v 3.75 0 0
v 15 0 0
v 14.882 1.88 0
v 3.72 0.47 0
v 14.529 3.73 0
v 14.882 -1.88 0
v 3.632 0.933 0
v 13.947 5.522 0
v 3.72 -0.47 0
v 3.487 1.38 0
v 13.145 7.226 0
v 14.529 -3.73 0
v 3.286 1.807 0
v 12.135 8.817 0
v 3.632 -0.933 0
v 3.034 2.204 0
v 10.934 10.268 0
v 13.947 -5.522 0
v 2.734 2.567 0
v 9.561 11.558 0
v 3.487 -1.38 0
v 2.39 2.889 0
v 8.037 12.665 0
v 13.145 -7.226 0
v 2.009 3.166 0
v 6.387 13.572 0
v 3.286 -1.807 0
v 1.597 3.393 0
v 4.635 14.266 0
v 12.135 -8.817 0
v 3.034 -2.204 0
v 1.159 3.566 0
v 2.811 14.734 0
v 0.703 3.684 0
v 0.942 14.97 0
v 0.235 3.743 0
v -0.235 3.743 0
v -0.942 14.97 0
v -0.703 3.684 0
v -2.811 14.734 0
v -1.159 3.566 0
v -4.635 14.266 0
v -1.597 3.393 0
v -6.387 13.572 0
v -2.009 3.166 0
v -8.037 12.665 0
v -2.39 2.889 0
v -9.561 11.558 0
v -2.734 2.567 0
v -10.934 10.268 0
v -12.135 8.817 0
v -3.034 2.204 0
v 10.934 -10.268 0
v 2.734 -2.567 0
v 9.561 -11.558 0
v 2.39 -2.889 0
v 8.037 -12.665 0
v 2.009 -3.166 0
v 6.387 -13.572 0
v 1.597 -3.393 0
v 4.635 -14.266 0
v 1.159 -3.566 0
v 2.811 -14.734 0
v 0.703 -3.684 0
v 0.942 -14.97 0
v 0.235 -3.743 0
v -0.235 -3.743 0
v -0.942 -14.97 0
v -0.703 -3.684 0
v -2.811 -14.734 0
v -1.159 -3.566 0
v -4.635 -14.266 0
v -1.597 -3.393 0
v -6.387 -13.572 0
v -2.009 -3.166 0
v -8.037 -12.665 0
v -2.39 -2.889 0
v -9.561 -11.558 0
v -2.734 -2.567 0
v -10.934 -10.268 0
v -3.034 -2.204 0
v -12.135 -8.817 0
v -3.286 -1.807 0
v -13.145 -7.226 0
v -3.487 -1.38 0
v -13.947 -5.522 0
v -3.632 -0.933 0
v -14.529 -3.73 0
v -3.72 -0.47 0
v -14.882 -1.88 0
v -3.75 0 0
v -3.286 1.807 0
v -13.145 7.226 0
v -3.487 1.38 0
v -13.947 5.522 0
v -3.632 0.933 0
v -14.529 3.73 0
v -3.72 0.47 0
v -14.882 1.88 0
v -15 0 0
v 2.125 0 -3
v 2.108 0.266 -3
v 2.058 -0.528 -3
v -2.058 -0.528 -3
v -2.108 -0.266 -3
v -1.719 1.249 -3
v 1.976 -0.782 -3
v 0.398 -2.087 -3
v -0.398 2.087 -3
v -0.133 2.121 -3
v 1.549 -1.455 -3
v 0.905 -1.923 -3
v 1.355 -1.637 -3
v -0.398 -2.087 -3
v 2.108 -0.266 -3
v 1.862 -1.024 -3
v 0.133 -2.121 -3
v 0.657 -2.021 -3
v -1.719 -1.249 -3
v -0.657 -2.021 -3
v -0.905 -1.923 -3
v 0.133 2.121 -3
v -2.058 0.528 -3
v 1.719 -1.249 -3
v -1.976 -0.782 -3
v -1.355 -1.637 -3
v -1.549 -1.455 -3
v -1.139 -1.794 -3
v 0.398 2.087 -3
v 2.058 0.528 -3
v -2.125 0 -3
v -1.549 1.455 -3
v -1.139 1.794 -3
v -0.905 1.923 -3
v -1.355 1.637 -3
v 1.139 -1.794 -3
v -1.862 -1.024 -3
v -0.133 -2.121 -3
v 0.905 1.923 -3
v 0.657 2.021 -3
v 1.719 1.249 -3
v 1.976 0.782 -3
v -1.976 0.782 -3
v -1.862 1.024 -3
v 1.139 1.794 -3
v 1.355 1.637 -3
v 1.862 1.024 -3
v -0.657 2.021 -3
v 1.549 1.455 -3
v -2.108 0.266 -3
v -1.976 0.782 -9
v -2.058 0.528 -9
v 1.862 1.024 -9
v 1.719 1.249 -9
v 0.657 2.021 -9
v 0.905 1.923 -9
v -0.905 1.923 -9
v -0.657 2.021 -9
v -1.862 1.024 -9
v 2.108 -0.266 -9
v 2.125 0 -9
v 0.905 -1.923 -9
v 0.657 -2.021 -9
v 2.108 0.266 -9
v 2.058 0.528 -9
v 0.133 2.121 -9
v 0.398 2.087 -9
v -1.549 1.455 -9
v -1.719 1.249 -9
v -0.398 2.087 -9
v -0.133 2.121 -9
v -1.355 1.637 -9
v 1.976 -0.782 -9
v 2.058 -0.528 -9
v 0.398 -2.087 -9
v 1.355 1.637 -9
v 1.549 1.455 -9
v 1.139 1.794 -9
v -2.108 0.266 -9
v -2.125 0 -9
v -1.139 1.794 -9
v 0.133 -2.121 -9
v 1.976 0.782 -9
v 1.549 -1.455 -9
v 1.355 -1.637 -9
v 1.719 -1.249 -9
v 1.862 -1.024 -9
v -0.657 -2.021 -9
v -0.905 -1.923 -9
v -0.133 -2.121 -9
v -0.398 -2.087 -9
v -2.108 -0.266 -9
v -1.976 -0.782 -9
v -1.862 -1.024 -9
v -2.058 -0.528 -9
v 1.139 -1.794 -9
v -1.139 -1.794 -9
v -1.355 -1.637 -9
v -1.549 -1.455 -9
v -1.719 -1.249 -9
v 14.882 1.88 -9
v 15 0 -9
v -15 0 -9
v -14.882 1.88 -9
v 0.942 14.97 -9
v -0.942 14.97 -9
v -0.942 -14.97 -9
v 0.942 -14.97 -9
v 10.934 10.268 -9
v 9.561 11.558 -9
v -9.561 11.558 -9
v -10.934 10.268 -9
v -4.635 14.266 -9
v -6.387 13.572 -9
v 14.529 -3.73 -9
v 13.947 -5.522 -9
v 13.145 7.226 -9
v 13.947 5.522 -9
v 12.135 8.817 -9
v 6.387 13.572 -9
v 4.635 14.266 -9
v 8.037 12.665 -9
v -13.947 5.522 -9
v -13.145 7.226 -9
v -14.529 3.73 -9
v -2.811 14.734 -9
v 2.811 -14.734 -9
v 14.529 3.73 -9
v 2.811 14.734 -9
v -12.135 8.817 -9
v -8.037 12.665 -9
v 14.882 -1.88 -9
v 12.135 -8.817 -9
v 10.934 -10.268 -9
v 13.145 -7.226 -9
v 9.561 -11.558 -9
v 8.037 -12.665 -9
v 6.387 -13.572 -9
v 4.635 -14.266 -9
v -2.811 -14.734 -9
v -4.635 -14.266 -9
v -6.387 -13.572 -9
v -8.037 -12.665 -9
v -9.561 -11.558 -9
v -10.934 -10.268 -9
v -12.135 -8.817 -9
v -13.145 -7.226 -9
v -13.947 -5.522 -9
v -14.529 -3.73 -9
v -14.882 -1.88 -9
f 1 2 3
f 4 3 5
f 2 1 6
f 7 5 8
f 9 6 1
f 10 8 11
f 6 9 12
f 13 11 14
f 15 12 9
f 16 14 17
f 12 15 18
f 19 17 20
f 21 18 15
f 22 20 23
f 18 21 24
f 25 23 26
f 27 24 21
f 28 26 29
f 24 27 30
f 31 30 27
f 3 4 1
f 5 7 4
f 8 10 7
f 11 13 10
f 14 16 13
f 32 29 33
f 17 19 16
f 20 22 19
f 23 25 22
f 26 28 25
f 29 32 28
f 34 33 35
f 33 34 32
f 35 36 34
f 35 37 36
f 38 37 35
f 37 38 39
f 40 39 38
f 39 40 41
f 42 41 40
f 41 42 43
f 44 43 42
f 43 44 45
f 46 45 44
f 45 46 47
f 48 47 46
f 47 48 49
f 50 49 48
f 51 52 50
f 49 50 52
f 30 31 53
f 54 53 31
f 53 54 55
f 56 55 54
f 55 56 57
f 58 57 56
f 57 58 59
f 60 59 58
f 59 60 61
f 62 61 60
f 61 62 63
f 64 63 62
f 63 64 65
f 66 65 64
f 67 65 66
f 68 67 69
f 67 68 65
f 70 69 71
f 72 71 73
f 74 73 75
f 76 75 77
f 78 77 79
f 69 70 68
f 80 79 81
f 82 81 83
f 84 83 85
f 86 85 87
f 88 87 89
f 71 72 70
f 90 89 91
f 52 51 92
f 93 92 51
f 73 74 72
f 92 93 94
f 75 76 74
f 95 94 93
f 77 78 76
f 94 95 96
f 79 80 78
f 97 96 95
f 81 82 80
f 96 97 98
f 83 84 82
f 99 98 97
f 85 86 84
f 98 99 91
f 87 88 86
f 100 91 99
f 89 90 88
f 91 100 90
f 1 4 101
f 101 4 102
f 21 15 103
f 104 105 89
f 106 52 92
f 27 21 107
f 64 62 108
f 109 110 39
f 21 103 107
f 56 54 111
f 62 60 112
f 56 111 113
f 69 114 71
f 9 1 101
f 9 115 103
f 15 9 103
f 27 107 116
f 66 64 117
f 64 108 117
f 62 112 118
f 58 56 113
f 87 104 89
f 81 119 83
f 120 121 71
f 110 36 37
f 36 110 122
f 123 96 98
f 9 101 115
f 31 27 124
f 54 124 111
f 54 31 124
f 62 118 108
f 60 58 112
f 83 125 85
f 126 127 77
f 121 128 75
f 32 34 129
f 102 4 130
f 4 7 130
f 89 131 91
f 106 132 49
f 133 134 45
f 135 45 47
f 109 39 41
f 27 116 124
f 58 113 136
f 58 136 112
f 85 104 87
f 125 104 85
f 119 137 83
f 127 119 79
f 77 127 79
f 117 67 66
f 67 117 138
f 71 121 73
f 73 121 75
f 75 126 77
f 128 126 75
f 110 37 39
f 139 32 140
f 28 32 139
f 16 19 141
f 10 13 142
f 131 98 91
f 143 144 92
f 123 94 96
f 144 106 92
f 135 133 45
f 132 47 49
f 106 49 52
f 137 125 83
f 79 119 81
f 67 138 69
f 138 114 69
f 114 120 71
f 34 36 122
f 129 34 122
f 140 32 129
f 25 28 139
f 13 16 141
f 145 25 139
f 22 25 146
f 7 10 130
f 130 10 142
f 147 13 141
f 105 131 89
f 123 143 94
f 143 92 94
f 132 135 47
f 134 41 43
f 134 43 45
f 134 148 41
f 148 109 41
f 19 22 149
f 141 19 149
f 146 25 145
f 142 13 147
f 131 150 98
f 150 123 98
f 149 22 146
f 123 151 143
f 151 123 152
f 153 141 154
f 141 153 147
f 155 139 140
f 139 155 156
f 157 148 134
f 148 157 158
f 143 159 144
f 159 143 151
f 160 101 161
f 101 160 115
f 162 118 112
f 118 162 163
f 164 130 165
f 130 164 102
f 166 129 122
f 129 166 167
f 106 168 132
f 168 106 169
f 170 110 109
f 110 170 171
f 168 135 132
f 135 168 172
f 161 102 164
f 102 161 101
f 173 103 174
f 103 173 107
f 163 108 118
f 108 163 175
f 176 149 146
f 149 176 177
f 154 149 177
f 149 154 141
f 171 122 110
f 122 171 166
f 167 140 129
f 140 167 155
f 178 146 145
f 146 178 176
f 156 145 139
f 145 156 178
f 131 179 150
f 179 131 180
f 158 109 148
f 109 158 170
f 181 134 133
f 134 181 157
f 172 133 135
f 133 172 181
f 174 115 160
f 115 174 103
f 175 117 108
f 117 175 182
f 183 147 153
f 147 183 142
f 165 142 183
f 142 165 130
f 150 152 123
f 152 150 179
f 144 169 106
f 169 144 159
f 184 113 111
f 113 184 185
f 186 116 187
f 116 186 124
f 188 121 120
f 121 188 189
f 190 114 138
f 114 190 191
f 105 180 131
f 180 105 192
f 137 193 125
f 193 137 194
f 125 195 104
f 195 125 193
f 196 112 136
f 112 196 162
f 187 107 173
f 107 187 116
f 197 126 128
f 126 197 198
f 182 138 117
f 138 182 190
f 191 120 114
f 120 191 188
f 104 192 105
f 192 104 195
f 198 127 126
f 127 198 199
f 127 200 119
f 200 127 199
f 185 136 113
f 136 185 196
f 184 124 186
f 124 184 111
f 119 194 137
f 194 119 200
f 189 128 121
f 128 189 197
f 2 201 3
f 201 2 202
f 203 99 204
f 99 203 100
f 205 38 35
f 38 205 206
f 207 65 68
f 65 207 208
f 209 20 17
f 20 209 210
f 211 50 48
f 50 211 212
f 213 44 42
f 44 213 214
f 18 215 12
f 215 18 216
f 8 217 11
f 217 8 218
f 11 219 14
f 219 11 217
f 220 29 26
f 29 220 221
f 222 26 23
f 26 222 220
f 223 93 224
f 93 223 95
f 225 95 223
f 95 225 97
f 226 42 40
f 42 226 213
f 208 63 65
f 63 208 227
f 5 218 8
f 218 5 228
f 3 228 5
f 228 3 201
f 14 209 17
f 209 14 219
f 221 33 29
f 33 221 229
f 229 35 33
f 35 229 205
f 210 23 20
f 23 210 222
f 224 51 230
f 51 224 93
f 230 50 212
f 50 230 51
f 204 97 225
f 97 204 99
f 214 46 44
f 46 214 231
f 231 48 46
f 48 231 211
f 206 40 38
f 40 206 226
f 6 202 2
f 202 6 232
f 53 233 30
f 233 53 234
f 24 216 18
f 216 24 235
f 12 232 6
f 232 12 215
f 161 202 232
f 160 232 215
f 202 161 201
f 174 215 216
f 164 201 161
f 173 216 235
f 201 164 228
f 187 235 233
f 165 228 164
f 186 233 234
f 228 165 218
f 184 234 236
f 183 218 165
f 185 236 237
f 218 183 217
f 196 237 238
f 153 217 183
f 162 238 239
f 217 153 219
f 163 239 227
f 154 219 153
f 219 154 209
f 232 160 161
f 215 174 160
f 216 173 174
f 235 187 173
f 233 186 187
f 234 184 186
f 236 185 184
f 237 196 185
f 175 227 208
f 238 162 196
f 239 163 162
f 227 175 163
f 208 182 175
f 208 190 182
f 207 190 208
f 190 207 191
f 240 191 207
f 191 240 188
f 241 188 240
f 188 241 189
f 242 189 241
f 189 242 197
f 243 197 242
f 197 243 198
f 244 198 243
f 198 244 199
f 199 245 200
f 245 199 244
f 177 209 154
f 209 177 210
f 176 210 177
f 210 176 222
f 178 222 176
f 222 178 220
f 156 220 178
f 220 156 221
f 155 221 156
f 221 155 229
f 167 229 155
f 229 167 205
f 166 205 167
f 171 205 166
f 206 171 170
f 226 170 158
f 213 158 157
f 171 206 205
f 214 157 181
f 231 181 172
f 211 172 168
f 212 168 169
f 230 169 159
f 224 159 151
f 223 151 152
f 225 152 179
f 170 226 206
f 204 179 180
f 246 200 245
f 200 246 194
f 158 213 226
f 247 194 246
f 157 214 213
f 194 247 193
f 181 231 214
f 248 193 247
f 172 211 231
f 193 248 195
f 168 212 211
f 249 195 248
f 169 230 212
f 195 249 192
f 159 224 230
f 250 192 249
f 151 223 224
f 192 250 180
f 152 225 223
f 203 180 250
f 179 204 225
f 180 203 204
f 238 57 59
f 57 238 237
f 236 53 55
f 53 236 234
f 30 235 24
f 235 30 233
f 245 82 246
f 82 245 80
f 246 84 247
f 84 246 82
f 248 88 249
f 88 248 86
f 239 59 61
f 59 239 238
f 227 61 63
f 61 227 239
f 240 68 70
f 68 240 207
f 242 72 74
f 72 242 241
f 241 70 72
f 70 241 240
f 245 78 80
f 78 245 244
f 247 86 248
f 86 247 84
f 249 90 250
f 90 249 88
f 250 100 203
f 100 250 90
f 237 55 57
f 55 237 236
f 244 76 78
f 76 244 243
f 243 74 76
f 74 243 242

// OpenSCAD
$fn = 50;

difference() {
	union() {
		translate(v = [0, 0, -9.0]) {
			cylinder(h = 9, r = 15.0);
		}
	}
	union() {
		translate(v = [0, 0, 0]) {
			rotate(a = [0, 0, 0]) {
				difference() {
					union() {
						translate(v = [0, 0, -12.0]) {
							cylinder(h = 12, r = 2.0);
						}
						translate(v = [0, 0, -3]) {
							cylinder(h = 3, r1 = 2.125, r2 = 3.75);
						}
						translate(v = [0, 0, -12.0]) {
							cylinder(h = 12, r = 2.125);
						}
						translate(v = [0, 0, -12.0]) {
							cylinder(h = 12, r = 2.0);
						}
					}
					union();
				}
			}
		}
	}
}
